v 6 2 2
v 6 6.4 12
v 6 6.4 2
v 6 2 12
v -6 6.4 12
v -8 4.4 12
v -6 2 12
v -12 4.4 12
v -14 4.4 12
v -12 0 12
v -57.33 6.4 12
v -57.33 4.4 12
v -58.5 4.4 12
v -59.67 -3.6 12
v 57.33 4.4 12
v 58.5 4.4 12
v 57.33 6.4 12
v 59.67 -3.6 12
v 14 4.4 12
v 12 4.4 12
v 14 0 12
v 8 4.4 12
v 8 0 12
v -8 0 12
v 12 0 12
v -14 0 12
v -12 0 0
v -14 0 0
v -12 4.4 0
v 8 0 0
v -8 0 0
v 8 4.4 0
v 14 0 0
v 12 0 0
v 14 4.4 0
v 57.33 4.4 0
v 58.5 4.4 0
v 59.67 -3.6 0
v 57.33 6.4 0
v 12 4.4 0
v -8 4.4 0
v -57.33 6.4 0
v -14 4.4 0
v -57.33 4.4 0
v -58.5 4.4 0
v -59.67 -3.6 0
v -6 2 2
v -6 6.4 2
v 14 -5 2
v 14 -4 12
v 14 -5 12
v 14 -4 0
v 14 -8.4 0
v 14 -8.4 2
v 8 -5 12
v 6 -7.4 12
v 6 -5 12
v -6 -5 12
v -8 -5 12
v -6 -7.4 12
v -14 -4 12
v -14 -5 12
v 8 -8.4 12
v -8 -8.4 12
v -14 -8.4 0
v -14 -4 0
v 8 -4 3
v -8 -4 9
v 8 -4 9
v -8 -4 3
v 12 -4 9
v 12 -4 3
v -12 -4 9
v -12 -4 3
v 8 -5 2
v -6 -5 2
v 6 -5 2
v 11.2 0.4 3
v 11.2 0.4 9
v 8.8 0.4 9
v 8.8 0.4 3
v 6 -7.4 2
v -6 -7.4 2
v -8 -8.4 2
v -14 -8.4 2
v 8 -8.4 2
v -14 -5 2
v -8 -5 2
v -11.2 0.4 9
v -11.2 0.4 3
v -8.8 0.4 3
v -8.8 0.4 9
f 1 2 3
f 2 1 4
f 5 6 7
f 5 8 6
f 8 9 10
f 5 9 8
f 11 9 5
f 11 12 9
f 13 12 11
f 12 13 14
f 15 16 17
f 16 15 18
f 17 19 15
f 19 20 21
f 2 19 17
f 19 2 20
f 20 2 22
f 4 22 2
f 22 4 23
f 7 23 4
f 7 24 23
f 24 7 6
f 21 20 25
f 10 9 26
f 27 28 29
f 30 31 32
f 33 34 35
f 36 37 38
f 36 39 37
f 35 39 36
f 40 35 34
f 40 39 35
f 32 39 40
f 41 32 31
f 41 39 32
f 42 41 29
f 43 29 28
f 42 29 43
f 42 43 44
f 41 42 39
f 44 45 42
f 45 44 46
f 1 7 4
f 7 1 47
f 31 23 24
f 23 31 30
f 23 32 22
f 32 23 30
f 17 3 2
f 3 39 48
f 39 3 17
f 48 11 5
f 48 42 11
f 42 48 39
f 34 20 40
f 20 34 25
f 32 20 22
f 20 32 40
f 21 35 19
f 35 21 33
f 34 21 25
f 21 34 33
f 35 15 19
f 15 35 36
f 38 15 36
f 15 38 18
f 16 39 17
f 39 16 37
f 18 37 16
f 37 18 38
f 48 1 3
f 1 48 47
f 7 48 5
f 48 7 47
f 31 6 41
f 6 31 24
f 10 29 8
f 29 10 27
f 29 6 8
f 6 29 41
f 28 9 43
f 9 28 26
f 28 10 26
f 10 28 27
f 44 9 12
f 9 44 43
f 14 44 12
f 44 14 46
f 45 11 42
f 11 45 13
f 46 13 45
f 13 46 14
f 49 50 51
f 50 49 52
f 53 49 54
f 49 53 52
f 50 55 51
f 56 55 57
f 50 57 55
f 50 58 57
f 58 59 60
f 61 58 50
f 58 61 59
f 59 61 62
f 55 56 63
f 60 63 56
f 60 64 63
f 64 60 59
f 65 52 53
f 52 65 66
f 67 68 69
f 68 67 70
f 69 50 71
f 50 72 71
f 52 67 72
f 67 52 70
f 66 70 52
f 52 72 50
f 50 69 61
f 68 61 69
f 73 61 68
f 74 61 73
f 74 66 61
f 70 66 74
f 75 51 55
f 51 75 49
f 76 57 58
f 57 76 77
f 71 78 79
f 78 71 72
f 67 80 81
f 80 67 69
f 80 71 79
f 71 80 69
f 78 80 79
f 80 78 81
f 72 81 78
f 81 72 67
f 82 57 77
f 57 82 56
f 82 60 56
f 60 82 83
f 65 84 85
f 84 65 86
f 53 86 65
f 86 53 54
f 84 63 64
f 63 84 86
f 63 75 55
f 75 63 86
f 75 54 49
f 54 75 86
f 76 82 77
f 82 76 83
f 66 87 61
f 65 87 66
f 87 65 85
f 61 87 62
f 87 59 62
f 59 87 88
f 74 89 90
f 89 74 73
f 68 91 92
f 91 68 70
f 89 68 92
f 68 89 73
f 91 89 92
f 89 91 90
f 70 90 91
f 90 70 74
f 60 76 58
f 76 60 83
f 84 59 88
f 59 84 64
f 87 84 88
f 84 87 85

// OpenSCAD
//Box closer
INSIDE_LENGTH = 117;
WALL_WIDTH = 2;
MAGNET_DIA_REAL = 10;
MAGNET_WIDTH_REAL = 2;
BELT_HEIGHT = 12; //should be bigger than magnet dia

SAFETY_FACTOR_FOR_MAGNET = 1.2;

MAGNET_DIA = MAGNET_DIA_REAL * SAFETY_FACTOR_FOR_MAGNET;
MAGNET_WIDTH = MAGNET_WIDTH_REAL * SAFETY_FACTOR_FOR_MAGNET;
//The two models are in the same file so you can print them together

half();
mirror([1,0,0])half();

passingHalf();
mirror([1,0,0])passingHalf();

module half()
{
	cube([MAGNET_DIA/2, WALL_WIDTH, BELT_HEIGHT]);
	translate([MAGNET_DIA/2,0,0])cube([WALL_WIDTH, 2*WALL_WIDTH+MAGNET_WIDTH, BELT_HEIGHT]);
	translate([MAGNET_DIA/2+WALL_WIDTH, WALL_WIDTH+MAGNET_WIDTH ,0])cube([2*WALL_WIDTH, WALL_WIDTH, BELT_HEIGHT]);
	translate([MAGNET_DIA/2+3*WALL_WIDTH,0,0])cube([WALL_WIDTH, 2*WALL_WIDTH+MAGNET_WIDTH, BELT_HEIGHT]);
	translate([MAGNET_DIA/2+4*WALL_WIDTH, WALL_WIDTH+MAGNET_WIDTH, 0])cube([INSIDE_LENGTH/2-(MAGNET_DIA/2+4*WALL_WIDTH)-INSIDE_LENGTH/2*0.02, WALL_WIDTH, BELT_HEIGHT]);
	TRANSLATE_VALUE = MAGNET_DIA/2+4*WALL_WIDTH + INSIDE_LENGTH/2-(MAGNET_DIA/2+4*WALL_WIDTH)-INSIDE_LENGTH/2*0.02;
	translate([TRANSLATE_VALUE, WALL_WIDTH+MAGNET_WIDTH, 0])linear_extrude(BELT_HEIGHT)polygon([[0,0],[0,WALL_WIDTH],[INSIDE_LENGTH/2*0.02,0],[INSIDE_LENGTH/2*0.02*2, -4*WALL_WIDTH]]);
	
	//magnetholder under part
	cube([MAGNET_DIA/2, 2*WALL_WIDTH+MAGNET_WIDTH, WALL_WIDTH]);
	
}

module passingHalf()
{
	START = -5;
	translate([0, START, 0])cube([MAGNET_DIA/2+4*WALL_WIDTH, WALL_WIDTH/2, BELT_HEIGHT]);
	translate([MAGNET_DIA/2+WALL_WIDTH,START+WALL_WIDTH/2, BELT_HEIGHT/4])linear_extrude(BELT_HEIGHT/2)polygon([[0,0], [WALL_WIDTH*0.4,WALL_WIDTH+MAGNET_WIDTH], [1.6*WALL_WIDTH, WALL_WIDTH+MAGNET_WIDTH], [2*WALL_WIDTH, 0]]);
	translate([0,START-MAGNET_WIDTH-WALL_WIDTH/2,0])cube([MAGNET_DIA/2,WALL_WIDTH/2,BELT_HEIGHT]);
	translate([MAGNET_DIA/2,START-MAGNET_WIDTH-WALL_WIDTH/2,0])cube([WALL_WIDTH,MAGNET_WIDTH+WALL_WIDTH/2, BELT_HEIGHT]);
	
	//magnetholder under part
	translate([0,START-MAGNET_WIDTH-WALL_WIDTH/2,0])cube([MAGNET_DIA/2+4*WALL_WIDTH, WALL_WIDTH*2, WALL_WIDTH]);
}
